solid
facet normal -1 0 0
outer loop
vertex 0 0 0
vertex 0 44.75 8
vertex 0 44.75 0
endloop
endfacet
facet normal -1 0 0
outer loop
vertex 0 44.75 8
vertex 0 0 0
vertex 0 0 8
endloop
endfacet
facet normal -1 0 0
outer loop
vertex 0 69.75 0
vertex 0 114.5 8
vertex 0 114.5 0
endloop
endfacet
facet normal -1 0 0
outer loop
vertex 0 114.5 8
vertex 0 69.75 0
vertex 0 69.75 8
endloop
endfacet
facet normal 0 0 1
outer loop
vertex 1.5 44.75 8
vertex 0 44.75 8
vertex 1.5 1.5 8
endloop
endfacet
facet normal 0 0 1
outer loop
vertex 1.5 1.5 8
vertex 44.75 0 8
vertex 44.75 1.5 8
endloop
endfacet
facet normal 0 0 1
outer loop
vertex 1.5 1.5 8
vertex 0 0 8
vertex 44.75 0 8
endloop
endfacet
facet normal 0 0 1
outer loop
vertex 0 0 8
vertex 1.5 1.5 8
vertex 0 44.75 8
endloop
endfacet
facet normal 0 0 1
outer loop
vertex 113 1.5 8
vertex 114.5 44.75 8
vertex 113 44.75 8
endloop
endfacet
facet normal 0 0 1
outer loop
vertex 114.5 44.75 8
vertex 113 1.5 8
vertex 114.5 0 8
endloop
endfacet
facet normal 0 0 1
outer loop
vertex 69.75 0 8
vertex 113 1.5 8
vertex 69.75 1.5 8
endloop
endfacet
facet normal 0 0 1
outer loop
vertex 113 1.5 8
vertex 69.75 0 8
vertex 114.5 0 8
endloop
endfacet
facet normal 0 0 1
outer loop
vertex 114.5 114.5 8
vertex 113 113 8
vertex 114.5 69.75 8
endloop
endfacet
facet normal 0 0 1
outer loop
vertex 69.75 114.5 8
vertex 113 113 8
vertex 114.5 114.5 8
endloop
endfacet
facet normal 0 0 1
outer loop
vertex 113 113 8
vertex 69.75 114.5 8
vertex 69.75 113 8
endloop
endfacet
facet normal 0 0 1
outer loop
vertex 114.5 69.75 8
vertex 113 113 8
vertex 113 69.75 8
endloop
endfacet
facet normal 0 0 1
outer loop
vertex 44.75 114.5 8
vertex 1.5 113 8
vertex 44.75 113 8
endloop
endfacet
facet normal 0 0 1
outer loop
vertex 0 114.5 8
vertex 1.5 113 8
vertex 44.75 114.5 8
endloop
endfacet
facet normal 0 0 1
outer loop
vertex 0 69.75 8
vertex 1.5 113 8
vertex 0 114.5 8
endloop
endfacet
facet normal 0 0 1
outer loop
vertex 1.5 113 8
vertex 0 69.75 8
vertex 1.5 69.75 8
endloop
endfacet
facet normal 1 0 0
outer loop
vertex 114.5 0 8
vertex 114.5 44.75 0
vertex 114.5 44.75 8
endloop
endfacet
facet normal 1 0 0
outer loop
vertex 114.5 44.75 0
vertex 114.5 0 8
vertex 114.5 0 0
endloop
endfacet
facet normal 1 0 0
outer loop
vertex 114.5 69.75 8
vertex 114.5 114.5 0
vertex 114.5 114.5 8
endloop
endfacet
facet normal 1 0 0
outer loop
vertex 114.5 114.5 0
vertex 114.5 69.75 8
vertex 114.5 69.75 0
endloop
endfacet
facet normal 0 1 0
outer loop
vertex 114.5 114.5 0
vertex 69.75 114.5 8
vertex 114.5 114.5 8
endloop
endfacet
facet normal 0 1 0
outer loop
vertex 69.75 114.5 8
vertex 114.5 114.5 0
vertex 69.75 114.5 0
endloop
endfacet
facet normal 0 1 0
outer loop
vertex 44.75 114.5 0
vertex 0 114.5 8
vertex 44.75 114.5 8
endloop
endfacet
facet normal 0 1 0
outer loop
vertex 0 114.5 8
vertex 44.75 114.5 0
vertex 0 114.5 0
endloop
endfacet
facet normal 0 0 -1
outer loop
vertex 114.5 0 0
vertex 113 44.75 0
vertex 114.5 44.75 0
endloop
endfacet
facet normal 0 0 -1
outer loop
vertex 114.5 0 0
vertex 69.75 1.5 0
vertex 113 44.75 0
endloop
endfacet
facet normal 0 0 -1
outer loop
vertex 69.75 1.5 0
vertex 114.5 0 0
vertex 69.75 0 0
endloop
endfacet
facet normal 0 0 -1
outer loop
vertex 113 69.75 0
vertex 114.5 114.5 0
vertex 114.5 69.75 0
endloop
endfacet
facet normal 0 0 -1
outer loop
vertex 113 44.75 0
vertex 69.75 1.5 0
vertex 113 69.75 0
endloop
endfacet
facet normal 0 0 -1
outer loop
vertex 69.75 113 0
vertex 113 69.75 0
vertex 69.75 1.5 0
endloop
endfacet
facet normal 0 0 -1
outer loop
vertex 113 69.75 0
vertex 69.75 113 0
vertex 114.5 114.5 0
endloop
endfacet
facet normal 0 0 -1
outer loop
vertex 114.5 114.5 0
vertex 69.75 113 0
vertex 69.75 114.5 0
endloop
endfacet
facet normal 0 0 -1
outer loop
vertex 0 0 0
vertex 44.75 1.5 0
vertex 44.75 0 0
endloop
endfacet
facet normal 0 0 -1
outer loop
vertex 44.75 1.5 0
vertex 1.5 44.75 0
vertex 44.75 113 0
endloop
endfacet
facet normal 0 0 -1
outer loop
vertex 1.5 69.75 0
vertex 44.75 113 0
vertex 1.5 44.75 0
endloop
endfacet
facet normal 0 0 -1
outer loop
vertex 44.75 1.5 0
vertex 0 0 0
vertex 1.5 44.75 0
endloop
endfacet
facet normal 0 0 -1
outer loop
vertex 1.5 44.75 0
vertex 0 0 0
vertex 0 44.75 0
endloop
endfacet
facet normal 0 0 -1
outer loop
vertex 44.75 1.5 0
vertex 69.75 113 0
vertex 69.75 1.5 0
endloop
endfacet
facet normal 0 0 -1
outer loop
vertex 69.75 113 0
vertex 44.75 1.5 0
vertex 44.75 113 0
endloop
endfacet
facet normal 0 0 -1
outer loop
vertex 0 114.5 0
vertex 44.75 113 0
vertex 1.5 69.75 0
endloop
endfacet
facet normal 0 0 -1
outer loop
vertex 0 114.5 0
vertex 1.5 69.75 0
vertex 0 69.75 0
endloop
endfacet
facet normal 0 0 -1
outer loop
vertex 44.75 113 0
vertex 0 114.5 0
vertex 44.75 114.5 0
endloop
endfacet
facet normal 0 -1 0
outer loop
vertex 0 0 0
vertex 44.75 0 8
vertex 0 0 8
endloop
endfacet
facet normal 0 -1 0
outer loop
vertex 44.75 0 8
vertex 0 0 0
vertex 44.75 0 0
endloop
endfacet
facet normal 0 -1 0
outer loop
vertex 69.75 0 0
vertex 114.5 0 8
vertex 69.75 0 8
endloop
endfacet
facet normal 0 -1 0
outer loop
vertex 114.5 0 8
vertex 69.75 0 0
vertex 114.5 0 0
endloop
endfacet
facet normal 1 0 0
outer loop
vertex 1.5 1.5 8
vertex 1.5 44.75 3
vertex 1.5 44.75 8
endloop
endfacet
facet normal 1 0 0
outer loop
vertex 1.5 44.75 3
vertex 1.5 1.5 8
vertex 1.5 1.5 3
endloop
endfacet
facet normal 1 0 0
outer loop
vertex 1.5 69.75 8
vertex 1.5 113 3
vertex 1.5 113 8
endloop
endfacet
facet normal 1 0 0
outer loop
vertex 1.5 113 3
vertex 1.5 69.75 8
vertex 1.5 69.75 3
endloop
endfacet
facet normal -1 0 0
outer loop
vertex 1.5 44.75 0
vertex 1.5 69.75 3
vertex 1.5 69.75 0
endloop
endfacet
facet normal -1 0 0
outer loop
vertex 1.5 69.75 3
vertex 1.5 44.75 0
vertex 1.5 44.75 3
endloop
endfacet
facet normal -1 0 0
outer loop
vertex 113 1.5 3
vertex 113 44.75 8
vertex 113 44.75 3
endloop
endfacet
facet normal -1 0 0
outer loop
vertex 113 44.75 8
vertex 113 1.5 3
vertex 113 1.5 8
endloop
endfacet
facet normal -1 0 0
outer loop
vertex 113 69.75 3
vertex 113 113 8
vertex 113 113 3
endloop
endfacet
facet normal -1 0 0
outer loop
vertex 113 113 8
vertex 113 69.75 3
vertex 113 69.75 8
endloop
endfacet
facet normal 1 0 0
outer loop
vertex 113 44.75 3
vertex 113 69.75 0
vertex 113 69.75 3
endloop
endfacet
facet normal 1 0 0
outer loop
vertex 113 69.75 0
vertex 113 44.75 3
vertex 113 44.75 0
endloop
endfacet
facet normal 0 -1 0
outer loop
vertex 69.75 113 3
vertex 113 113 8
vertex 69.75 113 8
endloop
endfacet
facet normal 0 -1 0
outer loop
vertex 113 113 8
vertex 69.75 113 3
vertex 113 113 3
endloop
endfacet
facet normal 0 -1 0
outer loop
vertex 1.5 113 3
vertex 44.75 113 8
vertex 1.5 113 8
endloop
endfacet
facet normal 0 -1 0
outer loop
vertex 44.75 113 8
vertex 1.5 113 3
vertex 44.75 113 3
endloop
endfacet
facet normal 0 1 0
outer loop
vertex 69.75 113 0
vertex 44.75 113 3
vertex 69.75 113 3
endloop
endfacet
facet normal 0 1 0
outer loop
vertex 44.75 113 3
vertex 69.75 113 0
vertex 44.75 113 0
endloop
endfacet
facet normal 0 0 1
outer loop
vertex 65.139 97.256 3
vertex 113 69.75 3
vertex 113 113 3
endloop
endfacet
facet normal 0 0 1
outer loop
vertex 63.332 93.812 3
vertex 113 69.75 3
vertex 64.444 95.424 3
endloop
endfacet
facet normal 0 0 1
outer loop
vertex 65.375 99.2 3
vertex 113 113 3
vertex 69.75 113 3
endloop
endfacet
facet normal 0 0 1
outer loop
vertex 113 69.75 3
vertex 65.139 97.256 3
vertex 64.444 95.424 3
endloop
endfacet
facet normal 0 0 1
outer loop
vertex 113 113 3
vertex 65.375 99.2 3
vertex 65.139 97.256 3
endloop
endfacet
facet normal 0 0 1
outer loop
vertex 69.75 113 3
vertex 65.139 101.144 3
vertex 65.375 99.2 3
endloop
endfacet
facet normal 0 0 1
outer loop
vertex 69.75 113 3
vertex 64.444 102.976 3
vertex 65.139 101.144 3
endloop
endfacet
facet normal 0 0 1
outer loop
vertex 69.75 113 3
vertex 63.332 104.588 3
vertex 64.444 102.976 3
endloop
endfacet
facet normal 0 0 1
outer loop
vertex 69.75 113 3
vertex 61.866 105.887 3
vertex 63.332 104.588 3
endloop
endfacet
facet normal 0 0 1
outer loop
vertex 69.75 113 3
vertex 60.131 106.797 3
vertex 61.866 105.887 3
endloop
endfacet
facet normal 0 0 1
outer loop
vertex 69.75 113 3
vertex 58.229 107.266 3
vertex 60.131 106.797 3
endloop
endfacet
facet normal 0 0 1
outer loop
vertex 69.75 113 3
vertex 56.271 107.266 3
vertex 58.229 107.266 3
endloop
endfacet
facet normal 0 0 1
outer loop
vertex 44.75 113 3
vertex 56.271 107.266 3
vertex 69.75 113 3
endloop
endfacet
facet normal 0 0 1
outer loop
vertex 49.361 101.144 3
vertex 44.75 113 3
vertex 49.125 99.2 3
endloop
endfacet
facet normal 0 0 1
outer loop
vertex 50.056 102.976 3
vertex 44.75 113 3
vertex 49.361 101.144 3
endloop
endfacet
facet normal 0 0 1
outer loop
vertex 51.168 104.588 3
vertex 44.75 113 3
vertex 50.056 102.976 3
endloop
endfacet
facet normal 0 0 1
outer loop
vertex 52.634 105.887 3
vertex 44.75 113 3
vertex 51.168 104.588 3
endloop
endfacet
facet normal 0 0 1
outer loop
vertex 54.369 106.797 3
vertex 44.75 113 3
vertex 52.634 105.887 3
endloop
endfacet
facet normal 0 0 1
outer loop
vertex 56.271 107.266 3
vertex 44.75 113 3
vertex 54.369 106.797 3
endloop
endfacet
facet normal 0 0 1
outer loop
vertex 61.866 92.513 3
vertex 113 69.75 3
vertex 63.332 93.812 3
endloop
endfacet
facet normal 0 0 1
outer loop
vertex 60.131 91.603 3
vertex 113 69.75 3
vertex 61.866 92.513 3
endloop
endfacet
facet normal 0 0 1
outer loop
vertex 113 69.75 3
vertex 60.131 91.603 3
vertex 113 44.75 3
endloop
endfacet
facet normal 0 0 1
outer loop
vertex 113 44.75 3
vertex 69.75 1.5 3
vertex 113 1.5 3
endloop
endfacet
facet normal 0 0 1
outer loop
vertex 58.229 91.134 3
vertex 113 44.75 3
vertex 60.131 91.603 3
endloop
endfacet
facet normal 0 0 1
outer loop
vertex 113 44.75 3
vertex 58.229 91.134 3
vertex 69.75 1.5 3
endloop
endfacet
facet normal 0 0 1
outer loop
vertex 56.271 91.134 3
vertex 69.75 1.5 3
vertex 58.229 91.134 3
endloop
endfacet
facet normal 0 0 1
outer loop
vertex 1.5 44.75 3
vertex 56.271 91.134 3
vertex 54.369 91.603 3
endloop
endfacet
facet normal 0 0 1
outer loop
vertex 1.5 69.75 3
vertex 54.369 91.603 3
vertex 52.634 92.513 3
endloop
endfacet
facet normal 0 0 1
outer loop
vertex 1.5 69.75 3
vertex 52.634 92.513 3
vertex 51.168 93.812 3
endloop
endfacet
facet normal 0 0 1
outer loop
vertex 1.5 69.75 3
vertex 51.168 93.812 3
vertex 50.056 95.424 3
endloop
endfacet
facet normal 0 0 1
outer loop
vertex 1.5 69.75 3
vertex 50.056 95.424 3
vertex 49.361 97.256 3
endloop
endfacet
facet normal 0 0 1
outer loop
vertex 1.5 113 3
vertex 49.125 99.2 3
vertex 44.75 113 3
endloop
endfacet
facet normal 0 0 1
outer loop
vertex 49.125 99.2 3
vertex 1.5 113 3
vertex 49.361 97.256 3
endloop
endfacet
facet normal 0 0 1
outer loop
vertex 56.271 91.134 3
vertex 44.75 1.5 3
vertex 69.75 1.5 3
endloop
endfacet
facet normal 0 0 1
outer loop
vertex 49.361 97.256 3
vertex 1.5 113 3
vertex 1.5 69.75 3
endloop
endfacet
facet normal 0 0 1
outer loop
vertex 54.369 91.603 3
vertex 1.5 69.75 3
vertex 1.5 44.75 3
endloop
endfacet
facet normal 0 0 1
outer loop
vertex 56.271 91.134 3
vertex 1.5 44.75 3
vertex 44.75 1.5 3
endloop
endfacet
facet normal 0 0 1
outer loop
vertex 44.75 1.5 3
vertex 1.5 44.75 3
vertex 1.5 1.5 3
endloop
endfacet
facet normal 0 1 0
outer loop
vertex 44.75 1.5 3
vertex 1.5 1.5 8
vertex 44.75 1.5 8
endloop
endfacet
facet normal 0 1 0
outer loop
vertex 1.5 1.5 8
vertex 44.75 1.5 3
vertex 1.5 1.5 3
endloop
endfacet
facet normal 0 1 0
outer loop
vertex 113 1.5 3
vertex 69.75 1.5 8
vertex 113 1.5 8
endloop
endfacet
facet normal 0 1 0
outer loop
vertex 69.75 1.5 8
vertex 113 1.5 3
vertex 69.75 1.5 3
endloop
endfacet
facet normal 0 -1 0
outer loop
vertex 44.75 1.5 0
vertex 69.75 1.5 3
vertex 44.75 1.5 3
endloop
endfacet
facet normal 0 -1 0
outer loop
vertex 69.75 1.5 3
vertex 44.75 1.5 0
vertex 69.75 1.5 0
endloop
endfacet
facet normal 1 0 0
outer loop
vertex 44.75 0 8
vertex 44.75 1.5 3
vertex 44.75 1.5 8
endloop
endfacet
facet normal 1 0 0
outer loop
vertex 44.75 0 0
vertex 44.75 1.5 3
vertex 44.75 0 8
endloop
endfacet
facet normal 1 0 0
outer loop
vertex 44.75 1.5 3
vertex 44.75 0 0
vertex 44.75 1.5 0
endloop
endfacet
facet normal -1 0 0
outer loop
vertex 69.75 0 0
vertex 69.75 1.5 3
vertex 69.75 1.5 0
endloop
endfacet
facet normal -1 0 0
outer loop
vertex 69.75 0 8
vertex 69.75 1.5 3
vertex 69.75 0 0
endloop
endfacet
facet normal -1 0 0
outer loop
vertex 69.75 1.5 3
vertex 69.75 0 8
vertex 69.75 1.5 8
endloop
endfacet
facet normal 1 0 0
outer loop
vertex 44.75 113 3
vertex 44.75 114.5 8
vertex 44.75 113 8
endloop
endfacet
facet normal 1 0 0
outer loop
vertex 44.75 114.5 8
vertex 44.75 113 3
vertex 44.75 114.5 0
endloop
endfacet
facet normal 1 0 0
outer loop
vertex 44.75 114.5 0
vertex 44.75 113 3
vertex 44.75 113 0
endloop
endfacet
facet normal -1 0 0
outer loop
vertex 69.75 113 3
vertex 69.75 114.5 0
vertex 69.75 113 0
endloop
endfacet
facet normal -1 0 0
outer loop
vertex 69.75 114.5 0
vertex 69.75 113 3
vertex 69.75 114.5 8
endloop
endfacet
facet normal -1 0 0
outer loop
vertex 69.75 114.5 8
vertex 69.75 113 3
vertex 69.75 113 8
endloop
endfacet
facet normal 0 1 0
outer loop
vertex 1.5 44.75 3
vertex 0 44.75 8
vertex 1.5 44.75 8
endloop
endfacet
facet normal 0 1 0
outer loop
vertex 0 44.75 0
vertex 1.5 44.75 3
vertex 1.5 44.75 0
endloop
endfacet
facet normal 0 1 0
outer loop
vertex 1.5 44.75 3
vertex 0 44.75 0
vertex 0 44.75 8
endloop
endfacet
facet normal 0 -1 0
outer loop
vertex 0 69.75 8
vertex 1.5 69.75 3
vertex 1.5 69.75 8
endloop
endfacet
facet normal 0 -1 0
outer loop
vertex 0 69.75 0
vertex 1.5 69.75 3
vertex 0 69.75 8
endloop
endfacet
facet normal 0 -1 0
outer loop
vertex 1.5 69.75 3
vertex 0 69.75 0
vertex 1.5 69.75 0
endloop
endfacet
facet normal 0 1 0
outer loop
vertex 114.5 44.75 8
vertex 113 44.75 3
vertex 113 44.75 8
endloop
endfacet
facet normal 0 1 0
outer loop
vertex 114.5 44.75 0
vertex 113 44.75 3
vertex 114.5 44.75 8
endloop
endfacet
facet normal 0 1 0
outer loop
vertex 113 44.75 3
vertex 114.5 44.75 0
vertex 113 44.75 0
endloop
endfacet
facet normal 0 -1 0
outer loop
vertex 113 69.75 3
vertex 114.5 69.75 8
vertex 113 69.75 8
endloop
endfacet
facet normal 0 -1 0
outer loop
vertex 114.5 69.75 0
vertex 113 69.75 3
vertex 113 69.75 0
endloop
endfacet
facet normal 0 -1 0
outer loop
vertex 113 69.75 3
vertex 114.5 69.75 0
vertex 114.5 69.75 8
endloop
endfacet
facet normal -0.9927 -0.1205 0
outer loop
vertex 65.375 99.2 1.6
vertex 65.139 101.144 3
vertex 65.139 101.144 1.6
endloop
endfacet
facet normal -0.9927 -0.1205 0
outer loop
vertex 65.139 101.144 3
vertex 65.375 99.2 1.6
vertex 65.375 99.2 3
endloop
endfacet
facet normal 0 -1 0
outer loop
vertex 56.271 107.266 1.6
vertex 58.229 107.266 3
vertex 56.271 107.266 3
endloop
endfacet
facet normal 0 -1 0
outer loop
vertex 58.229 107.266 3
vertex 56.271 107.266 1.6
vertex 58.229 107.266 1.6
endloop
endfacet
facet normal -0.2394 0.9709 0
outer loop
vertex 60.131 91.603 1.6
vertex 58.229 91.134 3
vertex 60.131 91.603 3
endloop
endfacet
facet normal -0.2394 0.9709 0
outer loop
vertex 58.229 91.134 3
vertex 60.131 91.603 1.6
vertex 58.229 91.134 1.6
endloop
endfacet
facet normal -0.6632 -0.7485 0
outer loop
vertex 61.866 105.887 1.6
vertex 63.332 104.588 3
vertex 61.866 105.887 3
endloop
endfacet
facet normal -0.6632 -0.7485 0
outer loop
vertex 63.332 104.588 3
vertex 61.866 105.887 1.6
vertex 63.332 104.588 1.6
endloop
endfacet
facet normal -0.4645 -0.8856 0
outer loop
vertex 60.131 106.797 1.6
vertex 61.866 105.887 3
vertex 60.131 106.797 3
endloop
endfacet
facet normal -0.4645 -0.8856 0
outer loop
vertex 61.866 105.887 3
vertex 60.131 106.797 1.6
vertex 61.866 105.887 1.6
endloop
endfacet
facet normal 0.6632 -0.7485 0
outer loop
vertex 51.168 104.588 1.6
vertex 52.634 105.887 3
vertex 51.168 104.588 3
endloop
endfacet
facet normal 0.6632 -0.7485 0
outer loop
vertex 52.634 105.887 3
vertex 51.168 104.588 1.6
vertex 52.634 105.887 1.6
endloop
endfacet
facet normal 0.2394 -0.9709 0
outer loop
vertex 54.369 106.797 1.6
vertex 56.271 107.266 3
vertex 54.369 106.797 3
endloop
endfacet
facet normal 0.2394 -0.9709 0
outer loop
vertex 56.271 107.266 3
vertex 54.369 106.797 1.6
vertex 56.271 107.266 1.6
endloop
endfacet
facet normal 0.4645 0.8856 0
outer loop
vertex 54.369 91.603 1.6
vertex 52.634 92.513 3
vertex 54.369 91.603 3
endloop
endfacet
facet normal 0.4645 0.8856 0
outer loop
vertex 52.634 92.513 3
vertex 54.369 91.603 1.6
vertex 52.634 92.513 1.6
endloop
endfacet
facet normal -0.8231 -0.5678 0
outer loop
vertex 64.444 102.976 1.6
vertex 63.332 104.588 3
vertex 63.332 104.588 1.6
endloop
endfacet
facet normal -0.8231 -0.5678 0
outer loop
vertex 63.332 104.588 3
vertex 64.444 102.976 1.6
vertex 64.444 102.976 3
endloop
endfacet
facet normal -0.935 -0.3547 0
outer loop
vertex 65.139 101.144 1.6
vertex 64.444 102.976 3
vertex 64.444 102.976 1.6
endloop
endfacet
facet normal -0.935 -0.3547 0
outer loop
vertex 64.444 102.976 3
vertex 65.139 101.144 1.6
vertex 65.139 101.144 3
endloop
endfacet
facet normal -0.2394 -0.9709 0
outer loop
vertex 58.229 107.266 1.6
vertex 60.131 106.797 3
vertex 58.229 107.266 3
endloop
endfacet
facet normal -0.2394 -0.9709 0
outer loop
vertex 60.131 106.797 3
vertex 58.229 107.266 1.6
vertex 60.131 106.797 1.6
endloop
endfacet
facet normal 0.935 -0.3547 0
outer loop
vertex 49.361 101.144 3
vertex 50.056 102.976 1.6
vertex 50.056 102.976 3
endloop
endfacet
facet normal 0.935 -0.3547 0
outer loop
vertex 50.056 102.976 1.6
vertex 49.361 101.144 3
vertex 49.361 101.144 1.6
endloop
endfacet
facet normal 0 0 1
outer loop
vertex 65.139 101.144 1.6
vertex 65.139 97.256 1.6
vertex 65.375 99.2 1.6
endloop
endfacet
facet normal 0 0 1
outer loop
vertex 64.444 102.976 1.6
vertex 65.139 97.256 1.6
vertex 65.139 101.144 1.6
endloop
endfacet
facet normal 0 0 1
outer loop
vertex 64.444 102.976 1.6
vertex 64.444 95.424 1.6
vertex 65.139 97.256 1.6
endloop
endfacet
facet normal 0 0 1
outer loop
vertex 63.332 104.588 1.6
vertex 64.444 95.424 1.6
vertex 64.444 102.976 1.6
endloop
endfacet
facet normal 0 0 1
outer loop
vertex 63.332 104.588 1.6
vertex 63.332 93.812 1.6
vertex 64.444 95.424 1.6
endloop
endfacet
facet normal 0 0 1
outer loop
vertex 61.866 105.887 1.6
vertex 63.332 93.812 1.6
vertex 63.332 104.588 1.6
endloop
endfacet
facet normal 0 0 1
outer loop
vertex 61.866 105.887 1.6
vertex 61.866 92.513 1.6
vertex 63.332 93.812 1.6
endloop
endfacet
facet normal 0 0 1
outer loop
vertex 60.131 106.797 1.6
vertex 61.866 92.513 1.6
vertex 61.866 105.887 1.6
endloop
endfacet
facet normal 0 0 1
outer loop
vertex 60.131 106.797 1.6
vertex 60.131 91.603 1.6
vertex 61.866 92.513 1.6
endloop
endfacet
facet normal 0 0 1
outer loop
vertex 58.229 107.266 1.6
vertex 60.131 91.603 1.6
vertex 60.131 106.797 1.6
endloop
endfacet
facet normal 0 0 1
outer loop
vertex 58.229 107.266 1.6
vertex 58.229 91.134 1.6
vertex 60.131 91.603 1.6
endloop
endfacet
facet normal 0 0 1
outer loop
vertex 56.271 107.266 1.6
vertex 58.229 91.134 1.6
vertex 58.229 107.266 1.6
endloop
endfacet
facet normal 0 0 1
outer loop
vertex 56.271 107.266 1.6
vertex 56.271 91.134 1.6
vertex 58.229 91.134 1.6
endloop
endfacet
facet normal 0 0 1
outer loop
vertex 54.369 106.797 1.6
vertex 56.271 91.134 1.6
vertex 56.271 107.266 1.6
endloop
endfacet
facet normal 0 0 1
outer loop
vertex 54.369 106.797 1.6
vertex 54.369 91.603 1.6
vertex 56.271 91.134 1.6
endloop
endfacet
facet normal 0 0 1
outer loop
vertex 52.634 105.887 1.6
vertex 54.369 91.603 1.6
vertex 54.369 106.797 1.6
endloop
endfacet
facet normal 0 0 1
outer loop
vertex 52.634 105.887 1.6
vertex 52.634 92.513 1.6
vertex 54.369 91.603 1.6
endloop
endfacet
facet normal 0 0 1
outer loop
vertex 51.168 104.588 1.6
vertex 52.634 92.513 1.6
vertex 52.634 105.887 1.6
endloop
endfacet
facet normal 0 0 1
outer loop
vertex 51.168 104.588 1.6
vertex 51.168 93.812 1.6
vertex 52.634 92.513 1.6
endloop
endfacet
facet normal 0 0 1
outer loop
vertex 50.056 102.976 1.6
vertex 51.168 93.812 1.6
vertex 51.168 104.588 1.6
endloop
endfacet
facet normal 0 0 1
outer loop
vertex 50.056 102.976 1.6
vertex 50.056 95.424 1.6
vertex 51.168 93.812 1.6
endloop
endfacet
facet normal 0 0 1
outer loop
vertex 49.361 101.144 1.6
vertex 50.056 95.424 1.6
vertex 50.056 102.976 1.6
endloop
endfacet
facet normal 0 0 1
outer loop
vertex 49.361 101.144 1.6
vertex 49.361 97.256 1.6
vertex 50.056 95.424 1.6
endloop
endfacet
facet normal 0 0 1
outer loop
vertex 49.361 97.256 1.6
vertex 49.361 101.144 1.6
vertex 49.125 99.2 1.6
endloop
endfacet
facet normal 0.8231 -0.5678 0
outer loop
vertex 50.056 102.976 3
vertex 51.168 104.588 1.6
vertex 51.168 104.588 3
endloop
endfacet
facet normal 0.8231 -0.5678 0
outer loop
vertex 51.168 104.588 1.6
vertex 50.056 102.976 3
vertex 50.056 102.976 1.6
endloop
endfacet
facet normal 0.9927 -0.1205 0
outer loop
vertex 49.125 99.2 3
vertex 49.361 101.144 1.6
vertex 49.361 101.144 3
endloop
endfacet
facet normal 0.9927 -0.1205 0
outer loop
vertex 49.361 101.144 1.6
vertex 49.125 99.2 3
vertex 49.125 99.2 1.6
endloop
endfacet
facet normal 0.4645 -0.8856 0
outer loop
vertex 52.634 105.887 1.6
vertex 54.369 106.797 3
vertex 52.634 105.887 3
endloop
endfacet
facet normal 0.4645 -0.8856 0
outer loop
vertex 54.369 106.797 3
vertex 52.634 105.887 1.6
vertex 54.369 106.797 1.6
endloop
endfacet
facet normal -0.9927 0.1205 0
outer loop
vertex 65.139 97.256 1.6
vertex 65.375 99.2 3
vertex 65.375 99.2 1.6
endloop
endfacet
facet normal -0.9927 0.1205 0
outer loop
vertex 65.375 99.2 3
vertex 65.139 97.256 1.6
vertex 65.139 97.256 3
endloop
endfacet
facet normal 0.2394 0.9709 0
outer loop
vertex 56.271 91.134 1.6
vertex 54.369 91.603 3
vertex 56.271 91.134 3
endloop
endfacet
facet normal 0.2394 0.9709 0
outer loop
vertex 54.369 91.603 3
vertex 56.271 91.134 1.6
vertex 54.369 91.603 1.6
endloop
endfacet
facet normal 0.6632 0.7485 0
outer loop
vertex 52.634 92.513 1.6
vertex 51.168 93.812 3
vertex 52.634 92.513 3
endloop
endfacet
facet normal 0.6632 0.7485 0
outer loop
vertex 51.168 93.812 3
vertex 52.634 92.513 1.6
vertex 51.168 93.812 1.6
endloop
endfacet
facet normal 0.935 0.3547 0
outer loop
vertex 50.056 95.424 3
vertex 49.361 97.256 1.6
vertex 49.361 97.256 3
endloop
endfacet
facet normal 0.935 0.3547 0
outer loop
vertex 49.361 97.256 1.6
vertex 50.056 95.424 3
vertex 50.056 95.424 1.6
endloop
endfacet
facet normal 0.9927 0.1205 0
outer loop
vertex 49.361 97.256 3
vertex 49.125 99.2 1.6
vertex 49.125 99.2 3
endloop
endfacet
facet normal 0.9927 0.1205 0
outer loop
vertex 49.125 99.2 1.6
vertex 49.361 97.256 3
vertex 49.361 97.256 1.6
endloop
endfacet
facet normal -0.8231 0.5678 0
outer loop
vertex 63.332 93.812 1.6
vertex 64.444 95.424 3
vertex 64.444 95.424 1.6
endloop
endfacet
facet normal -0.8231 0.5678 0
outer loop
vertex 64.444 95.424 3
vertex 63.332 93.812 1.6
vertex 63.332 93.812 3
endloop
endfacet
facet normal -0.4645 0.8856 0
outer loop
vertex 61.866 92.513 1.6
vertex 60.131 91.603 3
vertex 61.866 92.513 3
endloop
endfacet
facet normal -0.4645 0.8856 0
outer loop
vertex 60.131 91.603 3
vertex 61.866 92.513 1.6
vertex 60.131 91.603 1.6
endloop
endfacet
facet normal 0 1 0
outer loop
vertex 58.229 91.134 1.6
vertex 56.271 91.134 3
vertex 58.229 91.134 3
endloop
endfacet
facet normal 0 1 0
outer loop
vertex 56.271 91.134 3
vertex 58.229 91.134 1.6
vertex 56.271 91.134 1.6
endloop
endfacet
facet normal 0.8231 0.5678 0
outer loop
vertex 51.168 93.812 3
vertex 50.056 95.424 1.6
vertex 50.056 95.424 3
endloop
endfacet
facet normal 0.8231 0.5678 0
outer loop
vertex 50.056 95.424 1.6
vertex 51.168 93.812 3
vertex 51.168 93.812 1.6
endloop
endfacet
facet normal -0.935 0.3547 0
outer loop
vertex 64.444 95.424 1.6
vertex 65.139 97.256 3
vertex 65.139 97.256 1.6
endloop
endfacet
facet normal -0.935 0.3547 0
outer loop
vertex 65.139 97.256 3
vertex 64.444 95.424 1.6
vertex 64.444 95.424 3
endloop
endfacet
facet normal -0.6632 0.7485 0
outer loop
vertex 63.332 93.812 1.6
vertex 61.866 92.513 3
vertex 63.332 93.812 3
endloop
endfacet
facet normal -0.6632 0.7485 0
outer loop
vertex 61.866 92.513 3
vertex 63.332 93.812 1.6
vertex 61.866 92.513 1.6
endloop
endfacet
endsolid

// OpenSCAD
length = 110;
width = 110;

height = 3;
rimHeight = 5;
rimThickness = 1.5;
notchLength = 25;
//Based on washer size:
washerDiameter = 16.25;
washerHeight = 1.4;
rimPadding = 1.5;
totalHeight = height + rimHeight;

totalLength = length + rimThickness * 2 + rimPadding;
totalWidth = width + rimThickness * 2 + rimPadding;


pillarSideLength = 18;

magnetBaseInnerDiameter = 15.4;
spaceBetweenCircles = 2;
wallThickness = spaceBetweenCircles;
pillarSideOffset = .5;

difference() {
    cube([totalLength, totalWidth, height + rimHeight]);
    translate([rimThickness, rimThickness, height])
        cube([length + rimPadding, width + rimPadding, rimHeight]);
    
    translate([totalLength/2 - notchLength/2, 0, 0])
        cube([notchLength, rimThickness, totalHeight]);
    translate([totalLength/2 - notchLength/2, totalWidth-rimThickness, 0])
        cube([notchLength, rimThickness, totalHeight]);


    translate([0, totalWidth/2 - notchLength/2, 0])
        cube([rimThickness, notchLength, totalHeight]);
    translate([totalLength-rimThickness, totalWidth/2 - notchLength/2, 0])
        cube([rimThickness, notchLength, totalHeight]);
    
    translate([totalLength/2, totalWidth - (rimThickness + rimPadding + wallThickness + magnetBaseInnerDiameter/2 + (pillarSideLength-magnetBaseInnerDiameter)), height - washerHeight])
        cylinder(washerHeight, d=washerDiameter);
}
